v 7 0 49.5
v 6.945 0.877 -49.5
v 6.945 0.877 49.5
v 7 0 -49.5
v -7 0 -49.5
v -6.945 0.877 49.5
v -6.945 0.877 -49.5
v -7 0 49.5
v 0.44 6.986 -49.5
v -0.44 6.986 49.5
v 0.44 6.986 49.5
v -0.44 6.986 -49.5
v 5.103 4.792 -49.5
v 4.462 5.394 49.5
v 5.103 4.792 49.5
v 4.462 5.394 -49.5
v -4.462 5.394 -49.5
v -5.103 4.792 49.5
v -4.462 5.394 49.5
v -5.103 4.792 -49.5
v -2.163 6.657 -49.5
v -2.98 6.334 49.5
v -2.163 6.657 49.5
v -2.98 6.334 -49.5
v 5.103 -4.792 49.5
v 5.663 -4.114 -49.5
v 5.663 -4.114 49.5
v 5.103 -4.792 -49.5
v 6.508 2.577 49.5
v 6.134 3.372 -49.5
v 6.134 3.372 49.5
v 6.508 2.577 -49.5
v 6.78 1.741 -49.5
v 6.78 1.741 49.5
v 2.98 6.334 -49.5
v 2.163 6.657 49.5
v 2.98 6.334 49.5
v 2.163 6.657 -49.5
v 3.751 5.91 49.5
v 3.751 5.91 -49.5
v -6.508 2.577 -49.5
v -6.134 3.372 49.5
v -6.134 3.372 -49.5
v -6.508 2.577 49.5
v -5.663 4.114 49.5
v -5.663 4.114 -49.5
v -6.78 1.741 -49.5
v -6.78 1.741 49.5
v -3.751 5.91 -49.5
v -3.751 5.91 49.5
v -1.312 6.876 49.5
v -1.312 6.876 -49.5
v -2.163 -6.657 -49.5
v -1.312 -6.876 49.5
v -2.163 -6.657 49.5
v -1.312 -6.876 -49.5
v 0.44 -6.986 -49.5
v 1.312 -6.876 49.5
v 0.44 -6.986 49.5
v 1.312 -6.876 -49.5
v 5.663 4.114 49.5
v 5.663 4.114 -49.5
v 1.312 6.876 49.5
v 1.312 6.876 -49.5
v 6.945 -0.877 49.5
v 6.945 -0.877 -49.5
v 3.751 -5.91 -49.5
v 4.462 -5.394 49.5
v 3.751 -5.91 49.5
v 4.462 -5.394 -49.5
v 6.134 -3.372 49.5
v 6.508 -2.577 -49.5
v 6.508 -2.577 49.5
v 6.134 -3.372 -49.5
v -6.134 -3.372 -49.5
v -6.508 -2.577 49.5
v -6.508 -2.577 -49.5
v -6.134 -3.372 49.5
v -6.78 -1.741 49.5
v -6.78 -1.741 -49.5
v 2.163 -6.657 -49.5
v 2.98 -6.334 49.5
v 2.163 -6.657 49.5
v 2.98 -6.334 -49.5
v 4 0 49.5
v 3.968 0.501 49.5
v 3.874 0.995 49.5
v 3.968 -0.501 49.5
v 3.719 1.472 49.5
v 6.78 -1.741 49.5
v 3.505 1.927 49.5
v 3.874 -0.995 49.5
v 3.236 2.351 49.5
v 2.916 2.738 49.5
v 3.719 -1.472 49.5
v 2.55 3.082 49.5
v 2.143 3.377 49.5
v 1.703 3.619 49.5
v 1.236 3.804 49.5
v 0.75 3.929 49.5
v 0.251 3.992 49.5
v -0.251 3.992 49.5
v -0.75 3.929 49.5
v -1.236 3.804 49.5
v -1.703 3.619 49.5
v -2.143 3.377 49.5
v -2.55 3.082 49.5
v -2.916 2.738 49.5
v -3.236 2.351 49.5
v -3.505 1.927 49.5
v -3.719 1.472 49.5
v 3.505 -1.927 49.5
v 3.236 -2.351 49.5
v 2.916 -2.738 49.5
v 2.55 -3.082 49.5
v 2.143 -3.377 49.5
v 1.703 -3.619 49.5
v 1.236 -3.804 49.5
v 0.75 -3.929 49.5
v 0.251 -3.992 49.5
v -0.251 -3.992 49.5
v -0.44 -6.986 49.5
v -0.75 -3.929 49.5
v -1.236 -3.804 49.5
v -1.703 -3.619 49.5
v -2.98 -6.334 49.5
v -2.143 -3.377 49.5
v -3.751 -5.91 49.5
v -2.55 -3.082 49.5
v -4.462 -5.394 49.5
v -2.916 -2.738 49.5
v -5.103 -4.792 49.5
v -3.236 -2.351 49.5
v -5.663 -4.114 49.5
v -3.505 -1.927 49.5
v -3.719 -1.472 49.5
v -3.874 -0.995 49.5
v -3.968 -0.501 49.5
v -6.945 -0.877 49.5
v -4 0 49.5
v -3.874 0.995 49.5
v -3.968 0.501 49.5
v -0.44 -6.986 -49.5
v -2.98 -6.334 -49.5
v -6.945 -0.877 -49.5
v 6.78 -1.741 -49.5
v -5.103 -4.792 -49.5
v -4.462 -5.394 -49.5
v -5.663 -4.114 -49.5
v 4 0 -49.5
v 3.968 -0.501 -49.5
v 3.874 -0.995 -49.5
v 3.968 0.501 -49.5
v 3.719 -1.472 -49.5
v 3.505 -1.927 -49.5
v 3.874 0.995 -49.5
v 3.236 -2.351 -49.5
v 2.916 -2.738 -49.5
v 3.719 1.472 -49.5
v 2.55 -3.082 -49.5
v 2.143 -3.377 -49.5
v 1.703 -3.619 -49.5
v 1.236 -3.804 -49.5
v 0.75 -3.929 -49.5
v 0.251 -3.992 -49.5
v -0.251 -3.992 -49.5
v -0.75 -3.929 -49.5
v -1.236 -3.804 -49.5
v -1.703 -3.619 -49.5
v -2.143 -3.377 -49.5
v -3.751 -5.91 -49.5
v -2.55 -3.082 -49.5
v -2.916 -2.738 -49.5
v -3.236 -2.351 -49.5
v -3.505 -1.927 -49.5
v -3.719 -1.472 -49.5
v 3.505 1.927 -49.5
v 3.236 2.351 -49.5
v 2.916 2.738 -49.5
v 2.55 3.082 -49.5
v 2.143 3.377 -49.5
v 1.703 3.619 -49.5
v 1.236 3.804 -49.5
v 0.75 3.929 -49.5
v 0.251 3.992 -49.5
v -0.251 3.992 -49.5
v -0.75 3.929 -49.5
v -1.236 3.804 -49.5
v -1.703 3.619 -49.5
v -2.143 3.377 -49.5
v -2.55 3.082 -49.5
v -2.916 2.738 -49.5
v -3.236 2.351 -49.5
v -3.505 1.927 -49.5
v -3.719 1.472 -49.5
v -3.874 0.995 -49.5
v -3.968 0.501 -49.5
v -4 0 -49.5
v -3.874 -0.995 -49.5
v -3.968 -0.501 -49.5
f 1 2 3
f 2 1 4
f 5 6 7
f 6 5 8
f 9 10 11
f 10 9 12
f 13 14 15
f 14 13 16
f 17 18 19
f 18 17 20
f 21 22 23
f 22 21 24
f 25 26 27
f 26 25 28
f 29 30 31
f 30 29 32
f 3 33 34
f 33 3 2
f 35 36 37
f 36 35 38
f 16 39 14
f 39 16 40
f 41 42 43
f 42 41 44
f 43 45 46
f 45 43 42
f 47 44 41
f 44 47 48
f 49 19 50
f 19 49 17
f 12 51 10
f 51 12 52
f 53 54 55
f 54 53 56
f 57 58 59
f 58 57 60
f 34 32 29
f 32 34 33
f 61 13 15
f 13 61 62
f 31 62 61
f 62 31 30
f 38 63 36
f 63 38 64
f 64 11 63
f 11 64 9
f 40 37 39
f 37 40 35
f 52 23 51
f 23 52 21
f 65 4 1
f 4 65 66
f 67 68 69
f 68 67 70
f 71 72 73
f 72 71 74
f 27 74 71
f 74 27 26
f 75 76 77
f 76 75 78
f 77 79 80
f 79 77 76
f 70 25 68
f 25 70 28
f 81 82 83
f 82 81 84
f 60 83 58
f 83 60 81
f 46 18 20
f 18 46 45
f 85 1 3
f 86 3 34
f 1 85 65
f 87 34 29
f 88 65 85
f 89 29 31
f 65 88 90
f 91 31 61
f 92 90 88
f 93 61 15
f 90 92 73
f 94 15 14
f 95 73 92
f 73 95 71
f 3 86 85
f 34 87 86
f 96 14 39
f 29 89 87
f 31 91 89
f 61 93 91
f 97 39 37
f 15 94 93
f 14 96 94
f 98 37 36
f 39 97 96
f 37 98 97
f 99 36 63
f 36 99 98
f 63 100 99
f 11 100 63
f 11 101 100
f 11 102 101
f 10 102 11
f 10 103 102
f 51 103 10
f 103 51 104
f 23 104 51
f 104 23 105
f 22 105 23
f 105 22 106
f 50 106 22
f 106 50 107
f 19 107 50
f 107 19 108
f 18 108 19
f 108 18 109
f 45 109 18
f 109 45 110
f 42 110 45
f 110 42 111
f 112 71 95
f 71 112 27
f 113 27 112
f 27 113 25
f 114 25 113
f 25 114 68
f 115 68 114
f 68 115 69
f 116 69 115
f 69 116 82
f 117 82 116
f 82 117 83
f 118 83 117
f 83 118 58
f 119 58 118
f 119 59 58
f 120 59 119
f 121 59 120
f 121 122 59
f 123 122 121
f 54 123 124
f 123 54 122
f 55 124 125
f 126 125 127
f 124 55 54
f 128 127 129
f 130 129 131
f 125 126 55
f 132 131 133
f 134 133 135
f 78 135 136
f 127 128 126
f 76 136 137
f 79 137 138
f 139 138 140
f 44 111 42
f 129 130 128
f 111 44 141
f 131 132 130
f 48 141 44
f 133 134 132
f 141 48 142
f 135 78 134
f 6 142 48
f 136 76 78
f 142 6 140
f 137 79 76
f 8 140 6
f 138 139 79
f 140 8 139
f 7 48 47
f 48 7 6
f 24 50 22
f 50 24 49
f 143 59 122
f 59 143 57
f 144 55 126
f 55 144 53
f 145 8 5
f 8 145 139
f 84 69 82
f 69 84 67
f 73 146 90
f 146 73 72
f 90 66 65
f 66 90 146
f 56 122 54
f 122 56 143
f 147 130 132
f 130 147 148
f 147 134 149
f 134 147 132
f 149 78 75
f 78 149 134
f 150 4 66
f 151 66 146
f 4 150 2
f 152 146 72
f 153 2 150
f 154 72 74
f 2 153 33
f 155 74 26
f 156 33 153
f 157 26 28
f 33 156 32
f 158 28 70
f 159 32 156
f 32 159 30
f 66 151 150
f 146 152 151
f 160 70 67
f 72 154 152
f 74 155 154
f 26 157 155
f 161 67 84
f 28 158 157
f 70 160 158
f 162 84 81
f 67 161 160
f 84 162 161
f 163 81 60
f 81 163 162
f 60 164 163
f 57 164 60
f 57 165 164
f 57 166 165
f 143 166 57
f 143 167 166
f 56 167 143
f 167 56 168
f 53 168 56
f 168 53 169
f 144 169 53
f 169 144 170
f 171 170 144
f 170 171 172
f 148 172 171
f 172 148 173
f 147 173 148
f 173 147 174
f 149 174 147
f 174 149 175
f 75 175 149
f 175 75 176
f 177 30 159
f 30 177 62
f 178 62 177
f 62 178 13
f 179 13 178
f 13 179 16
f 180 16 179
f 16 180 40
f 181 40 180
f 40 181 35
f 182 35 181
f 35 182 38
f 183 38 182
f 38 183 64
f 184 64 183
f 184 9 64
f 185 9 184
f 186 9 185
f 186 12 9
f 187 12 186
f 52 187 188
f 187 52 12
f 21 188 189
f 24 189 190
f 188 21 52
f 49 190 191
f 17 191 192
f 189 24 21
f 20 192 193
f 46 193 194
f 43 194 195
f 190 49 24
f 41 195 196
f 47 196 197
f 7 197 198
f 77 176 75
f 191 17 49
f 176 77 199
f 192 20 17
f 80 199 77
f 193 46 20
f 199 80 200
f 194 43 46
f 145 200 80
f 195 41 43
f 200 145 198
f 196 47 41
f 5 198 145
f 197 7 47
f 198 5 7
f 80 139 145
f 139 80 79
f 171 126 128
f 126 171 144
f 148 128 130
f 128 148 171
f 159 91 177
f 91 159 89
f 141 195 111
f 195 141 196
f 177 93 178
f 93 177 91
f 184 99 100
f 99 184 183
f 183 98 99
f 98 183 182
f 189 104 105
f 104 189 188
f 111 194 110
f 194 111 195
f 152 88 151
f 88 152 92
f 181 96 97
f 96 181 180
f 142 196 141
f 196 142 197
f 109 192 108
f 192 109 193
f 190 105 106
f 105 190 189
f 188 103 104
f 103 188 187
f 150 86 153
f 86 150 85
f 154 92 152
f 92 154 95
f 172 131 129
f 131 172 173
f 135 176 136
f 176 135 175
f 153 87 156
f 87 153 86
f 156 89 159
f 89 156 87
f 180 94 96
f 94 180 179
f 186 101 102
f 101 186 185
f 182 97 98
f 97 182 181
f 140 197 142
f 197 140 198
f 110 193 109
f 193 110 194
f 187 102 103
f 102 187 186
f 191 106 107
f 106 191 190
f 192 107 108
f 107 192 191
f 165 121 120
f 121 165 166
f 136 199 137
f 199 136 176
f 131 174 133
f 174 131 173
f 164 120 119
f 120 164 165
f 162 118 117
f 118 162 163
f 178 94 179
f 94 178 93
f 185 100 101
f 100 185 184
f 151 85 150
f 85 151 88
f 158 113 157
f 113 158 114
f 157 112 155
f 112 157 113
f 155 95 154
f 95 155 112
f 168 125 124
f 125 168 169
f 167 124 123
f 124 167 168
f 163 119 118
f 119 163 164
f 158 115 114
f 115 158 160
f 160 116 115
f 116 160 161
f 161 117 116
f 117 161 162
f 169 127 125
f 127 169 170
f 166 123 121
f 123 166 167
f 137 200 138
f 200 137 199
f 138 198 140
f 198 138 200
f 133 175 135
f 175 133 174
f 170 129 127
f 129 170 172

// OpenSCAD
$fn = 50;


difference() {
	union() {
		translate(v = [0, 0, -49.5000000000]) {
			cylinder(h = 99, r = 7.0000000000);
		}
	}
	union() {
		translate(v = [0, 0, -100.0000000000]) {
			cylinder(h = 200, r = 4.0000000000);
		}
	}
}
